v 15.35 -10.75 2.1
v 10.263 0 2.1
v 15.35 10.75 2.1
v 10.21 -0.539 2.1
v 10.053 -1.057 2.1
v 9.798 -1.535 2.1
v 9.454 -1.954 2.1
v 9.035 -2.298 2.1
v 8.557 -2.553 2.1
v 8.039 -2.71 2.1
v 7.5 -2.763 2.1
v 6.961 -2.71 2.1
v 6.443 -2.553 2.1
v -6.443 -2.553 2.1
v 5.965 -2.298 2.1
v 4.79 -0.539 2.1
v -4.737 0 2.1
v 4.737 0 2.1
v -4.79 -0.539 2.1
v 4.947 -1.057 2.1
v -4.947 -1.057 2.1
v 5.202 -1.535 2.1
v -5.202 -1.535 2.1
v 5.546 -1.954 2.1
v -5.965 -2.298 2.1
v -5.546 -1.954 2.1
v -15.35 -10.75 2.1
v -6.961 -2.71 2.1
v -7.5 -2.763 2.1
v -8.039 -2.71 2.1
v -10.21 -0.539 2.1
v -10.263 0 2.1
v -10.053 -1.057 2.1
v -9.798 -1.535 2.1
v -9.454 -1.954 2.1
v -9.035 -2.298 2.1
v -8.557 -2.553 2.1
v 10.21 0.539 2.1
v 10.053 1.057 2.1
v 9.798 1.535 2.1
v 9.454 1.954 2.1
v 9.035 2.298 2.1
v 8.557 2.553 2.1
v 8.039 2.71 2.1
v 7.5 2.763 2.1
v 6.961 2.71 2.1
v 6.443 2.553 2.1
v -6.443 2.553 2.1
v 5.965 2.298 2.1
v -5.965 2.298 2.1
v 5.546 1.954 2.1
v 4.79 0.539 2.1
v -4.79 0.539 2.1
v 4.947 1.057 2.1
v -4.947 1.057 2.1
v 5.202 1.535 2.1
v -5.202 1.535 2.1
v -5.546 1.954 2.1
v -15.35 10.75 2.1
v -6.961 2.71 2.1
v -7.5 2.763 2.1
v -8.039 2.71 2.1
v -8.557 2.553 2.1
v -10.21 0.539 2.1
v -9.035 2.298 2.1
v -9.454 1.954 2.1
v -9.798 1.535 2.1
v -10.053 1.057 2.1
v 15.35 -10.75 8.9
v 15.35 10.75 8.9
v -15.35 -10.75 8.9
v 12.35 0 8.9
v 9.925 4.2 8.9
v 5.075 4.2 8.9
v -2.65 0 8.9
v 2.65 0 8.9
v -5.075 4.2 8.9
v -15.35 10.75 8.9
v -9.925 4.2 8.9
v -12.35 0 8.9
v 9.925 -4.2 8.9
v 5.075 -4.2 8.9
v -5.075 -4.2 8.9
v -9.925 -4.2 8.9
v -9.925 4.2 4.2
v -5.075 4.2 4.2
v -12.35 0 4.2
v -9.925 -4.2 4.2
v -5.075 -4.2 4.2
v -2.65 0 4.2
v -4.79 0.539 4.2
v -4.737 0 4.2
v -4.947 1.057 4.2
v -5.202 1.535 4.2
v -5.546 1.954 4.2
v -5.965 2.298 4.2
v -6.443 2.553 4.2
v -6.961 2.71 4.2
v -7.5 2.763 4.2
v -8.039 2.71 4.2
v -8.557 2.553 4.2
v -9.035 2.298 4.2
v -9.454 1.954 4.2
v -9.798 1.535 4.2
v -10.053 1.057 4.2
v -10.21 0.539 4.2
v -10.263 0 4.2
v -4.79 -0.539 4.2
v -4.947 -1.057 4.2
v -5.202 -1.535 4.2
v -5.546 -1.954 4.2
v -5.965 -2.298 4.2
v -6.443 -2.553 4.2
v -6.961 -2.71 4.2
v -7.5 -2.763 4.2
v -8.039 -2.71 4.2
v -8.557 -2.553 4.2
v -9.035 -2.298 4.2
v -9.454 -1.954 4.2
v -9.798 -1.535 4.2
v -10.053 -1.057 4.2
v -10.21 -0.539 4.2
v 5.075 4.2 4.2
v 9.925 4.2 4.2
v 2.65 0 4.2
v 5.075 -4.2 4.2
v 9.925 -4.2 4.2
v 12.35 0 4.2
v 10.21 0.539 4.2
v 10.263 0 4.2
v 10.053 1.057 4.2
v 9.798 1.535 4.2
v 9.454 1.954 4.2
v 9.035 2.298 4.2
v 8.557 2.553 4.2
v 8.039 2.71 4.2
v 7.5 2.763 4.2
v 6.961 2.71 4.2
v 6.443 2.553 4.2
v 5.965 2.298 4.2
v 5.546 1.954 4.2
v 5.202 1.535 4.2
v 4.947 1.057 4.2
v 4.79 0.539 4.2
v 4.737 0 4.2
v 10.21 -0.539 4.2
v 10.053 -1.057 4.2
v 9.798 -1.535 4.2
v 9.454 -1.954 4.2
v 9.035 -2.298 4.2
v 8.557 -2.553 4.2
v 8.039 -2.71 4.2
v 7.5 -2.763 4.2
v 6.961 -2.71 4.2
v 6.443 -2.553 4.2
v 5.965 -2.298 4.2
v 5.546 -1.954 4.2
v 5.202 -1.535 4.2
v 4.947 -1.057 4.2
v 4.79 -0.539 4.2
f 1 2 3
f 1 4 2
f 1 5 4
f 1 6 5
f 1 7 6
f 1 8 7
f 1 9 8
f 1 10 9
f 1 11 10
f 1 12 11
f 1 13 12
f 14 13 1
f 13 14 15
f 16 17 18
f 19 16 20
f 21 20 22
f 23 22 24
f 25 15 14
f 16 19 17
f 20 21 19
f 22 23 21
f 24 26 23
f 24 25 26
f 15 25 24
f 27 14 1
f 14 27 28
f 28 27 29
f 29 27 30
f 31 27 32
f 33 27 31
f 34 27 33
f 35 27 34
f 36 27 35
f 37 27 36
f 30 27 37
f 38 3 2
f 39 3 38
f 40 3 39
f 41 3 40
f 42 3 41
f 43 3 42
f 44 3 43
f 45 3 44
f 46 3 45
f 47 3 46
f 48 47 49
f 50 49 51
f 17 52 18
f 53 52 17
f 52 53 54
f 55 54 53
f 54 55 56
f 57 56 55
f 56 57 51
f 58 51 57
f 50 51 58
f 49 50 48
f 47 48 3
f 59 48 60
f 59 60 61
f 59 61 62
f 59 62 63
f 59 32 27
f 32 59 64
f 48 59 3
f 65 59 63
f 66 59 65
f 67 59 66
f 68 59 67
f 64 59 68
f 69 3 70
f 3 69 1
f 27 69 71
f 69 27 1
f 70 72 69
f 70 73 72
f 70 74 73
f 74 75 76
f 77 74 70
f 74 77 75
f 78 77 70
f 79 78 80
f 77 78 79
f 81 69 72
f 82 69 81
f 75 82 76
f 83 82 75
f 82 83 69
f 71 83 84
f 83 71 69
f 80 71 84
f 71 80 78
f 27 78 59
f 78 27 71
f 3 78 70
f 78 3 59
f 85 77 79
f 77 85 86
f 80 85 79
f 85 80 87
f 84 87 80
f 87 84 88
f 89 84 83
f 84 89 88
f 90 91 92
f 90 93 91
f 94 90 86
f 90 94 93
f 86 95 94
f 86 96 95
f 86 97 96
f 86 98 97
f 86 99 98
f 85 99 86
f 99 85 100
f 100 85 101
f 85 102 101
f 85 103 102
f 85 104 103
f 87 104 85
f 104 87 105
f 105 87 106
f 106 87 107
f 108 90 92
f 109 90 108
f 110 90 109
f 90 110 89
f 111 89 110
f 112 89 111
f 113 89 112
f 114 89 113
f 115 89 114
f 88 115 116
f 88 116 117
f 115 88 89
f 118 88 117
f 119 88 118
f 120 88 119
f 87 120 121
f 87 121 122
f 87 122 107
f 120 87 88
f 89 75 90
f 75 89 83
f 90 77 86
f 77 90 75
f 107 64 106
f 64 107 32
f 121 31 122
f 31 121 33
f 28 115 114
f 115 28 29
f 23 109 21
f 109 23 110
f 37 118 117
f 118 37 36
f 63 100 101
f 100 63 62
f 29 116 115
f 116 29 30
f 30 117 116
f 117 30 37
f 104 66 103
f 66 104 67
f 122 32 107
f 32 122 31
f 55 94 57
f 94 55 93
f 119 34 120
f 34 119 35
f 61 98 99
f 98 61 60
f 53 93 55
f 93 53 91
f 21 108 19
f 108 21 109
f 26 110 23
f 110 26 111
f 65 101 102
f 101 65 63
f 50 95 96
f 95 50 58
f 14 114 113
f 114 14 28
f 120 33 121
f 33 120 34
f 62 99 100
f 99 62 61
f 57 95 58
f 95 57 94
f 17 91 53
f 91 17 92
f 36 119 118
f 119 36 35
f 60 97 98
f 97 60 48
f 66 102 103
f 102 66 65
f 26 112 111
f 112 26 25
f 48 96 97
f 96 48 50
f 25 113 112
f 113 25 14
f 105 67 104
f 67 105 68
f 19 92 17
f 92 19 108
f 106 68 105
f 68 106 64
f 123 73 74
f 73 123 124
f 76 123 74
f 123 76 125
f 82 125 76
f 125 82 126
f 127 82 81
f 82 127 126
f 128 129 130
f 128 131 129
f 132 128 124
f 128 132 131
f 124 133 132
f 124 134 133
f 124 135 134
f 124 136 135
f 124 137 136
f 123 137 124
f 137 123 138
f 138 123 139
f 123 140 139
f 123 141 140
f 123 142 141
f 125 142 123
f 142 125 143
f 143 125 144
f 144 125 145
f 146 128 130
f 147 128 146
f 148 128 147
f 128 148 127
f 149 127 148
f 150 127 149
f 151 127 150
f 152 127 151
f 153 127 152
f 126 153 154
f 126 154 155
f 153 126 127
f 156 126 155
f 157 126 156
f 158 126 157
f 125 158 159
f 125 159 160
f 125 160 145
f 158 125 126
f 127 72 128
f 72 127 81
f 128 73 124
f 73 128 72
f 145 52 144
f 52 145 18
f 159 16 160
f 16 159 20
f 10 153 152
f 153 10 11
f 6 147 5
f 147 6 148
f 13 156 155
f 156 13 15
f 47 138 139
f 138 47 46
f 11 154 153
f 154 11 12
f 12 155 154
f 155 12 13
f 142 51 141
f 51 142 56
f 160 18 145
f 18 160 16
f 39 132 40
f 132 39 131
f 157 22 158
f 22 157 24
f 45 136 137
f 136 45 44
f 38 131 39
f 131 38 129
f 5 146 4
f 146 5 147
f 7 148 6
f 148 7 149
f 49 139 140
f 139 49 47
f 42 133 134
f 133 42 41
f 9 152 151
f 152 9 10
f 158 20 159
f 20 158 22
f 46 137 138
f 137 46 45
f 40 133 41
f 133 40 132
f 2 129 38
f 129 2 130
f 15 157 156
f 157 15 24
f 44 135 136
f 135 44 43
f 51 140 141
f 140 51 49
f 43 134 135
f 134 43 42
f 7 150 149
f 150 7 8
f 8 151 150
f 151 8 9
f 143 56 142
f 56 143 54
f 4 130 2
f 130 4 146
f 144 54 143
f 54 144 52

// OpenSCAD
// body nut_frame
difference() {
  union() {
    // body nut_frame (nut_frame)
    multmatrix([[1, 0, 0, 0], [0, 1, 0, 0], [0, 0, 1, 2.1], [0, 0, 0, 1]]) linear_extrude(height=6.8) polygon(points=[[-15.349742, -10.75], [15.349742, -10.75], [15.349742, 10.75], [-15.349742, 10.75]]);
  }
  // cut frame_trap_0 (nut_trap)
  multmatrix([[1, 0, 0, -7.5], [0, 1, 0, 0], [0, 0, 1, 4.2], [0, 0, 0, 1]]) linear_extrude(height=5.7) polygon(points=[[-4.849742, 0], [-2.424871, -4.2], [2.424871, -4.2], [4.849742, 0], [2.424871, 4.2], [-2.424871, 4.2]]);
  // cut frame_hole_0 (bolt_hole)
  multmatrix([[1, 0, 0, -7.5], [0, 1, 0, 0], [0, 0, 1, 1.1], [0, 0, 0, 1]]) linear_extrude(height=4.1) polygon(points=[[0, -2.763306], [0.539094, -2.71021], [1.057471, -2.552962], [1.535211, -2.297605], [1.953952, -1.953952], [2.297605, -1.535211], [2.552962, -1.057471], [2.71021, -0.539094], [2.763306, 0], [2.71021, 0.539094], [2.552962, 1.057471], [2.297605, 1.535211], [1.953952, 1.953952], [1.535211, 2.297605], [1.057471, 2.552962], [0.539094, 2.71021], [0, 2.763306], [0, 2.763306], [-0.539094, 2.71021], [-1.057471, 2.552962], [-1.535211, 2.297605], [-1.953952, 1.953952], [-2.297605, 1.535211], [-2.552962, 1.057471], [-2.71021, 0.539094], [-2.763306, 0], [-2.71021, -0.539094], [-2.552962, -1.057471], [-2.297605, -1.535211], [-1.953952, -1.953952], [-1.535211, -2.297605], [-1.057471, -2.552962], [-0.539094, -2.71021], [0, -2.763306]]);
  // cut frame_trap_1 (nut_trap)
  multmatrix([[1, 0, 0, 7.5], [0, 1, 0, 0], [0, 0, 1, 4.2], [0, 0, 0, 1]]) linear_extrude(height=5.7) polygon(points=[[-4.849742, 0], [-2.424871, -4.2], [2.424871, -4.2], [4.849742, 0], [2.424871, 4.2], [-2.424871, 4.2]]);
  // cut frame_hole_1 (bolt_hole)
  multmatrix([[1, 0, 0, 7.5], [0, 1, 0, 0], [0, 0, 1, 1.1], [0, 0, 0, 1]]) linear_extrude(height=4.1) polygon(points=[[0, -2.763306], [0.539094, -2.71021], [1.057471, -2.552962], [1.535211, -2.297605], [1.953952, -1.953952], [2.297605, -1.535211], [2.552962, -1.057471], [2.71021, -0.539094], [2.763306, 0], [2.71021, 0.539094], [2.552962, 1.057471], [2.297605, 1.535211], [1.953952, 1.953952], [1.535211, 2.297605], [1.057471, 2.552962], [0.539094, 2.71021], [0, 2.763306], [0, 2.763306], [-0.539094, 2.71021], [-1.057471, 2.552962], [-1.535211, 2.297605], [-1.953952, 1.953952], [-2.297605, 1.535211], [-2.552962, 1.057471], [-2.71021, 0.539094], [-2.763306, 0], [-2.71021, -0.539094], [-2.552962, -1.057471], [-2.297605, -1.535211], [-1.953952, -1.953952], [-1.535211, -2.297605], [-1.057471, -2.552962], [-0.539094, -2.71021], [0, -2.763306]]);
}
